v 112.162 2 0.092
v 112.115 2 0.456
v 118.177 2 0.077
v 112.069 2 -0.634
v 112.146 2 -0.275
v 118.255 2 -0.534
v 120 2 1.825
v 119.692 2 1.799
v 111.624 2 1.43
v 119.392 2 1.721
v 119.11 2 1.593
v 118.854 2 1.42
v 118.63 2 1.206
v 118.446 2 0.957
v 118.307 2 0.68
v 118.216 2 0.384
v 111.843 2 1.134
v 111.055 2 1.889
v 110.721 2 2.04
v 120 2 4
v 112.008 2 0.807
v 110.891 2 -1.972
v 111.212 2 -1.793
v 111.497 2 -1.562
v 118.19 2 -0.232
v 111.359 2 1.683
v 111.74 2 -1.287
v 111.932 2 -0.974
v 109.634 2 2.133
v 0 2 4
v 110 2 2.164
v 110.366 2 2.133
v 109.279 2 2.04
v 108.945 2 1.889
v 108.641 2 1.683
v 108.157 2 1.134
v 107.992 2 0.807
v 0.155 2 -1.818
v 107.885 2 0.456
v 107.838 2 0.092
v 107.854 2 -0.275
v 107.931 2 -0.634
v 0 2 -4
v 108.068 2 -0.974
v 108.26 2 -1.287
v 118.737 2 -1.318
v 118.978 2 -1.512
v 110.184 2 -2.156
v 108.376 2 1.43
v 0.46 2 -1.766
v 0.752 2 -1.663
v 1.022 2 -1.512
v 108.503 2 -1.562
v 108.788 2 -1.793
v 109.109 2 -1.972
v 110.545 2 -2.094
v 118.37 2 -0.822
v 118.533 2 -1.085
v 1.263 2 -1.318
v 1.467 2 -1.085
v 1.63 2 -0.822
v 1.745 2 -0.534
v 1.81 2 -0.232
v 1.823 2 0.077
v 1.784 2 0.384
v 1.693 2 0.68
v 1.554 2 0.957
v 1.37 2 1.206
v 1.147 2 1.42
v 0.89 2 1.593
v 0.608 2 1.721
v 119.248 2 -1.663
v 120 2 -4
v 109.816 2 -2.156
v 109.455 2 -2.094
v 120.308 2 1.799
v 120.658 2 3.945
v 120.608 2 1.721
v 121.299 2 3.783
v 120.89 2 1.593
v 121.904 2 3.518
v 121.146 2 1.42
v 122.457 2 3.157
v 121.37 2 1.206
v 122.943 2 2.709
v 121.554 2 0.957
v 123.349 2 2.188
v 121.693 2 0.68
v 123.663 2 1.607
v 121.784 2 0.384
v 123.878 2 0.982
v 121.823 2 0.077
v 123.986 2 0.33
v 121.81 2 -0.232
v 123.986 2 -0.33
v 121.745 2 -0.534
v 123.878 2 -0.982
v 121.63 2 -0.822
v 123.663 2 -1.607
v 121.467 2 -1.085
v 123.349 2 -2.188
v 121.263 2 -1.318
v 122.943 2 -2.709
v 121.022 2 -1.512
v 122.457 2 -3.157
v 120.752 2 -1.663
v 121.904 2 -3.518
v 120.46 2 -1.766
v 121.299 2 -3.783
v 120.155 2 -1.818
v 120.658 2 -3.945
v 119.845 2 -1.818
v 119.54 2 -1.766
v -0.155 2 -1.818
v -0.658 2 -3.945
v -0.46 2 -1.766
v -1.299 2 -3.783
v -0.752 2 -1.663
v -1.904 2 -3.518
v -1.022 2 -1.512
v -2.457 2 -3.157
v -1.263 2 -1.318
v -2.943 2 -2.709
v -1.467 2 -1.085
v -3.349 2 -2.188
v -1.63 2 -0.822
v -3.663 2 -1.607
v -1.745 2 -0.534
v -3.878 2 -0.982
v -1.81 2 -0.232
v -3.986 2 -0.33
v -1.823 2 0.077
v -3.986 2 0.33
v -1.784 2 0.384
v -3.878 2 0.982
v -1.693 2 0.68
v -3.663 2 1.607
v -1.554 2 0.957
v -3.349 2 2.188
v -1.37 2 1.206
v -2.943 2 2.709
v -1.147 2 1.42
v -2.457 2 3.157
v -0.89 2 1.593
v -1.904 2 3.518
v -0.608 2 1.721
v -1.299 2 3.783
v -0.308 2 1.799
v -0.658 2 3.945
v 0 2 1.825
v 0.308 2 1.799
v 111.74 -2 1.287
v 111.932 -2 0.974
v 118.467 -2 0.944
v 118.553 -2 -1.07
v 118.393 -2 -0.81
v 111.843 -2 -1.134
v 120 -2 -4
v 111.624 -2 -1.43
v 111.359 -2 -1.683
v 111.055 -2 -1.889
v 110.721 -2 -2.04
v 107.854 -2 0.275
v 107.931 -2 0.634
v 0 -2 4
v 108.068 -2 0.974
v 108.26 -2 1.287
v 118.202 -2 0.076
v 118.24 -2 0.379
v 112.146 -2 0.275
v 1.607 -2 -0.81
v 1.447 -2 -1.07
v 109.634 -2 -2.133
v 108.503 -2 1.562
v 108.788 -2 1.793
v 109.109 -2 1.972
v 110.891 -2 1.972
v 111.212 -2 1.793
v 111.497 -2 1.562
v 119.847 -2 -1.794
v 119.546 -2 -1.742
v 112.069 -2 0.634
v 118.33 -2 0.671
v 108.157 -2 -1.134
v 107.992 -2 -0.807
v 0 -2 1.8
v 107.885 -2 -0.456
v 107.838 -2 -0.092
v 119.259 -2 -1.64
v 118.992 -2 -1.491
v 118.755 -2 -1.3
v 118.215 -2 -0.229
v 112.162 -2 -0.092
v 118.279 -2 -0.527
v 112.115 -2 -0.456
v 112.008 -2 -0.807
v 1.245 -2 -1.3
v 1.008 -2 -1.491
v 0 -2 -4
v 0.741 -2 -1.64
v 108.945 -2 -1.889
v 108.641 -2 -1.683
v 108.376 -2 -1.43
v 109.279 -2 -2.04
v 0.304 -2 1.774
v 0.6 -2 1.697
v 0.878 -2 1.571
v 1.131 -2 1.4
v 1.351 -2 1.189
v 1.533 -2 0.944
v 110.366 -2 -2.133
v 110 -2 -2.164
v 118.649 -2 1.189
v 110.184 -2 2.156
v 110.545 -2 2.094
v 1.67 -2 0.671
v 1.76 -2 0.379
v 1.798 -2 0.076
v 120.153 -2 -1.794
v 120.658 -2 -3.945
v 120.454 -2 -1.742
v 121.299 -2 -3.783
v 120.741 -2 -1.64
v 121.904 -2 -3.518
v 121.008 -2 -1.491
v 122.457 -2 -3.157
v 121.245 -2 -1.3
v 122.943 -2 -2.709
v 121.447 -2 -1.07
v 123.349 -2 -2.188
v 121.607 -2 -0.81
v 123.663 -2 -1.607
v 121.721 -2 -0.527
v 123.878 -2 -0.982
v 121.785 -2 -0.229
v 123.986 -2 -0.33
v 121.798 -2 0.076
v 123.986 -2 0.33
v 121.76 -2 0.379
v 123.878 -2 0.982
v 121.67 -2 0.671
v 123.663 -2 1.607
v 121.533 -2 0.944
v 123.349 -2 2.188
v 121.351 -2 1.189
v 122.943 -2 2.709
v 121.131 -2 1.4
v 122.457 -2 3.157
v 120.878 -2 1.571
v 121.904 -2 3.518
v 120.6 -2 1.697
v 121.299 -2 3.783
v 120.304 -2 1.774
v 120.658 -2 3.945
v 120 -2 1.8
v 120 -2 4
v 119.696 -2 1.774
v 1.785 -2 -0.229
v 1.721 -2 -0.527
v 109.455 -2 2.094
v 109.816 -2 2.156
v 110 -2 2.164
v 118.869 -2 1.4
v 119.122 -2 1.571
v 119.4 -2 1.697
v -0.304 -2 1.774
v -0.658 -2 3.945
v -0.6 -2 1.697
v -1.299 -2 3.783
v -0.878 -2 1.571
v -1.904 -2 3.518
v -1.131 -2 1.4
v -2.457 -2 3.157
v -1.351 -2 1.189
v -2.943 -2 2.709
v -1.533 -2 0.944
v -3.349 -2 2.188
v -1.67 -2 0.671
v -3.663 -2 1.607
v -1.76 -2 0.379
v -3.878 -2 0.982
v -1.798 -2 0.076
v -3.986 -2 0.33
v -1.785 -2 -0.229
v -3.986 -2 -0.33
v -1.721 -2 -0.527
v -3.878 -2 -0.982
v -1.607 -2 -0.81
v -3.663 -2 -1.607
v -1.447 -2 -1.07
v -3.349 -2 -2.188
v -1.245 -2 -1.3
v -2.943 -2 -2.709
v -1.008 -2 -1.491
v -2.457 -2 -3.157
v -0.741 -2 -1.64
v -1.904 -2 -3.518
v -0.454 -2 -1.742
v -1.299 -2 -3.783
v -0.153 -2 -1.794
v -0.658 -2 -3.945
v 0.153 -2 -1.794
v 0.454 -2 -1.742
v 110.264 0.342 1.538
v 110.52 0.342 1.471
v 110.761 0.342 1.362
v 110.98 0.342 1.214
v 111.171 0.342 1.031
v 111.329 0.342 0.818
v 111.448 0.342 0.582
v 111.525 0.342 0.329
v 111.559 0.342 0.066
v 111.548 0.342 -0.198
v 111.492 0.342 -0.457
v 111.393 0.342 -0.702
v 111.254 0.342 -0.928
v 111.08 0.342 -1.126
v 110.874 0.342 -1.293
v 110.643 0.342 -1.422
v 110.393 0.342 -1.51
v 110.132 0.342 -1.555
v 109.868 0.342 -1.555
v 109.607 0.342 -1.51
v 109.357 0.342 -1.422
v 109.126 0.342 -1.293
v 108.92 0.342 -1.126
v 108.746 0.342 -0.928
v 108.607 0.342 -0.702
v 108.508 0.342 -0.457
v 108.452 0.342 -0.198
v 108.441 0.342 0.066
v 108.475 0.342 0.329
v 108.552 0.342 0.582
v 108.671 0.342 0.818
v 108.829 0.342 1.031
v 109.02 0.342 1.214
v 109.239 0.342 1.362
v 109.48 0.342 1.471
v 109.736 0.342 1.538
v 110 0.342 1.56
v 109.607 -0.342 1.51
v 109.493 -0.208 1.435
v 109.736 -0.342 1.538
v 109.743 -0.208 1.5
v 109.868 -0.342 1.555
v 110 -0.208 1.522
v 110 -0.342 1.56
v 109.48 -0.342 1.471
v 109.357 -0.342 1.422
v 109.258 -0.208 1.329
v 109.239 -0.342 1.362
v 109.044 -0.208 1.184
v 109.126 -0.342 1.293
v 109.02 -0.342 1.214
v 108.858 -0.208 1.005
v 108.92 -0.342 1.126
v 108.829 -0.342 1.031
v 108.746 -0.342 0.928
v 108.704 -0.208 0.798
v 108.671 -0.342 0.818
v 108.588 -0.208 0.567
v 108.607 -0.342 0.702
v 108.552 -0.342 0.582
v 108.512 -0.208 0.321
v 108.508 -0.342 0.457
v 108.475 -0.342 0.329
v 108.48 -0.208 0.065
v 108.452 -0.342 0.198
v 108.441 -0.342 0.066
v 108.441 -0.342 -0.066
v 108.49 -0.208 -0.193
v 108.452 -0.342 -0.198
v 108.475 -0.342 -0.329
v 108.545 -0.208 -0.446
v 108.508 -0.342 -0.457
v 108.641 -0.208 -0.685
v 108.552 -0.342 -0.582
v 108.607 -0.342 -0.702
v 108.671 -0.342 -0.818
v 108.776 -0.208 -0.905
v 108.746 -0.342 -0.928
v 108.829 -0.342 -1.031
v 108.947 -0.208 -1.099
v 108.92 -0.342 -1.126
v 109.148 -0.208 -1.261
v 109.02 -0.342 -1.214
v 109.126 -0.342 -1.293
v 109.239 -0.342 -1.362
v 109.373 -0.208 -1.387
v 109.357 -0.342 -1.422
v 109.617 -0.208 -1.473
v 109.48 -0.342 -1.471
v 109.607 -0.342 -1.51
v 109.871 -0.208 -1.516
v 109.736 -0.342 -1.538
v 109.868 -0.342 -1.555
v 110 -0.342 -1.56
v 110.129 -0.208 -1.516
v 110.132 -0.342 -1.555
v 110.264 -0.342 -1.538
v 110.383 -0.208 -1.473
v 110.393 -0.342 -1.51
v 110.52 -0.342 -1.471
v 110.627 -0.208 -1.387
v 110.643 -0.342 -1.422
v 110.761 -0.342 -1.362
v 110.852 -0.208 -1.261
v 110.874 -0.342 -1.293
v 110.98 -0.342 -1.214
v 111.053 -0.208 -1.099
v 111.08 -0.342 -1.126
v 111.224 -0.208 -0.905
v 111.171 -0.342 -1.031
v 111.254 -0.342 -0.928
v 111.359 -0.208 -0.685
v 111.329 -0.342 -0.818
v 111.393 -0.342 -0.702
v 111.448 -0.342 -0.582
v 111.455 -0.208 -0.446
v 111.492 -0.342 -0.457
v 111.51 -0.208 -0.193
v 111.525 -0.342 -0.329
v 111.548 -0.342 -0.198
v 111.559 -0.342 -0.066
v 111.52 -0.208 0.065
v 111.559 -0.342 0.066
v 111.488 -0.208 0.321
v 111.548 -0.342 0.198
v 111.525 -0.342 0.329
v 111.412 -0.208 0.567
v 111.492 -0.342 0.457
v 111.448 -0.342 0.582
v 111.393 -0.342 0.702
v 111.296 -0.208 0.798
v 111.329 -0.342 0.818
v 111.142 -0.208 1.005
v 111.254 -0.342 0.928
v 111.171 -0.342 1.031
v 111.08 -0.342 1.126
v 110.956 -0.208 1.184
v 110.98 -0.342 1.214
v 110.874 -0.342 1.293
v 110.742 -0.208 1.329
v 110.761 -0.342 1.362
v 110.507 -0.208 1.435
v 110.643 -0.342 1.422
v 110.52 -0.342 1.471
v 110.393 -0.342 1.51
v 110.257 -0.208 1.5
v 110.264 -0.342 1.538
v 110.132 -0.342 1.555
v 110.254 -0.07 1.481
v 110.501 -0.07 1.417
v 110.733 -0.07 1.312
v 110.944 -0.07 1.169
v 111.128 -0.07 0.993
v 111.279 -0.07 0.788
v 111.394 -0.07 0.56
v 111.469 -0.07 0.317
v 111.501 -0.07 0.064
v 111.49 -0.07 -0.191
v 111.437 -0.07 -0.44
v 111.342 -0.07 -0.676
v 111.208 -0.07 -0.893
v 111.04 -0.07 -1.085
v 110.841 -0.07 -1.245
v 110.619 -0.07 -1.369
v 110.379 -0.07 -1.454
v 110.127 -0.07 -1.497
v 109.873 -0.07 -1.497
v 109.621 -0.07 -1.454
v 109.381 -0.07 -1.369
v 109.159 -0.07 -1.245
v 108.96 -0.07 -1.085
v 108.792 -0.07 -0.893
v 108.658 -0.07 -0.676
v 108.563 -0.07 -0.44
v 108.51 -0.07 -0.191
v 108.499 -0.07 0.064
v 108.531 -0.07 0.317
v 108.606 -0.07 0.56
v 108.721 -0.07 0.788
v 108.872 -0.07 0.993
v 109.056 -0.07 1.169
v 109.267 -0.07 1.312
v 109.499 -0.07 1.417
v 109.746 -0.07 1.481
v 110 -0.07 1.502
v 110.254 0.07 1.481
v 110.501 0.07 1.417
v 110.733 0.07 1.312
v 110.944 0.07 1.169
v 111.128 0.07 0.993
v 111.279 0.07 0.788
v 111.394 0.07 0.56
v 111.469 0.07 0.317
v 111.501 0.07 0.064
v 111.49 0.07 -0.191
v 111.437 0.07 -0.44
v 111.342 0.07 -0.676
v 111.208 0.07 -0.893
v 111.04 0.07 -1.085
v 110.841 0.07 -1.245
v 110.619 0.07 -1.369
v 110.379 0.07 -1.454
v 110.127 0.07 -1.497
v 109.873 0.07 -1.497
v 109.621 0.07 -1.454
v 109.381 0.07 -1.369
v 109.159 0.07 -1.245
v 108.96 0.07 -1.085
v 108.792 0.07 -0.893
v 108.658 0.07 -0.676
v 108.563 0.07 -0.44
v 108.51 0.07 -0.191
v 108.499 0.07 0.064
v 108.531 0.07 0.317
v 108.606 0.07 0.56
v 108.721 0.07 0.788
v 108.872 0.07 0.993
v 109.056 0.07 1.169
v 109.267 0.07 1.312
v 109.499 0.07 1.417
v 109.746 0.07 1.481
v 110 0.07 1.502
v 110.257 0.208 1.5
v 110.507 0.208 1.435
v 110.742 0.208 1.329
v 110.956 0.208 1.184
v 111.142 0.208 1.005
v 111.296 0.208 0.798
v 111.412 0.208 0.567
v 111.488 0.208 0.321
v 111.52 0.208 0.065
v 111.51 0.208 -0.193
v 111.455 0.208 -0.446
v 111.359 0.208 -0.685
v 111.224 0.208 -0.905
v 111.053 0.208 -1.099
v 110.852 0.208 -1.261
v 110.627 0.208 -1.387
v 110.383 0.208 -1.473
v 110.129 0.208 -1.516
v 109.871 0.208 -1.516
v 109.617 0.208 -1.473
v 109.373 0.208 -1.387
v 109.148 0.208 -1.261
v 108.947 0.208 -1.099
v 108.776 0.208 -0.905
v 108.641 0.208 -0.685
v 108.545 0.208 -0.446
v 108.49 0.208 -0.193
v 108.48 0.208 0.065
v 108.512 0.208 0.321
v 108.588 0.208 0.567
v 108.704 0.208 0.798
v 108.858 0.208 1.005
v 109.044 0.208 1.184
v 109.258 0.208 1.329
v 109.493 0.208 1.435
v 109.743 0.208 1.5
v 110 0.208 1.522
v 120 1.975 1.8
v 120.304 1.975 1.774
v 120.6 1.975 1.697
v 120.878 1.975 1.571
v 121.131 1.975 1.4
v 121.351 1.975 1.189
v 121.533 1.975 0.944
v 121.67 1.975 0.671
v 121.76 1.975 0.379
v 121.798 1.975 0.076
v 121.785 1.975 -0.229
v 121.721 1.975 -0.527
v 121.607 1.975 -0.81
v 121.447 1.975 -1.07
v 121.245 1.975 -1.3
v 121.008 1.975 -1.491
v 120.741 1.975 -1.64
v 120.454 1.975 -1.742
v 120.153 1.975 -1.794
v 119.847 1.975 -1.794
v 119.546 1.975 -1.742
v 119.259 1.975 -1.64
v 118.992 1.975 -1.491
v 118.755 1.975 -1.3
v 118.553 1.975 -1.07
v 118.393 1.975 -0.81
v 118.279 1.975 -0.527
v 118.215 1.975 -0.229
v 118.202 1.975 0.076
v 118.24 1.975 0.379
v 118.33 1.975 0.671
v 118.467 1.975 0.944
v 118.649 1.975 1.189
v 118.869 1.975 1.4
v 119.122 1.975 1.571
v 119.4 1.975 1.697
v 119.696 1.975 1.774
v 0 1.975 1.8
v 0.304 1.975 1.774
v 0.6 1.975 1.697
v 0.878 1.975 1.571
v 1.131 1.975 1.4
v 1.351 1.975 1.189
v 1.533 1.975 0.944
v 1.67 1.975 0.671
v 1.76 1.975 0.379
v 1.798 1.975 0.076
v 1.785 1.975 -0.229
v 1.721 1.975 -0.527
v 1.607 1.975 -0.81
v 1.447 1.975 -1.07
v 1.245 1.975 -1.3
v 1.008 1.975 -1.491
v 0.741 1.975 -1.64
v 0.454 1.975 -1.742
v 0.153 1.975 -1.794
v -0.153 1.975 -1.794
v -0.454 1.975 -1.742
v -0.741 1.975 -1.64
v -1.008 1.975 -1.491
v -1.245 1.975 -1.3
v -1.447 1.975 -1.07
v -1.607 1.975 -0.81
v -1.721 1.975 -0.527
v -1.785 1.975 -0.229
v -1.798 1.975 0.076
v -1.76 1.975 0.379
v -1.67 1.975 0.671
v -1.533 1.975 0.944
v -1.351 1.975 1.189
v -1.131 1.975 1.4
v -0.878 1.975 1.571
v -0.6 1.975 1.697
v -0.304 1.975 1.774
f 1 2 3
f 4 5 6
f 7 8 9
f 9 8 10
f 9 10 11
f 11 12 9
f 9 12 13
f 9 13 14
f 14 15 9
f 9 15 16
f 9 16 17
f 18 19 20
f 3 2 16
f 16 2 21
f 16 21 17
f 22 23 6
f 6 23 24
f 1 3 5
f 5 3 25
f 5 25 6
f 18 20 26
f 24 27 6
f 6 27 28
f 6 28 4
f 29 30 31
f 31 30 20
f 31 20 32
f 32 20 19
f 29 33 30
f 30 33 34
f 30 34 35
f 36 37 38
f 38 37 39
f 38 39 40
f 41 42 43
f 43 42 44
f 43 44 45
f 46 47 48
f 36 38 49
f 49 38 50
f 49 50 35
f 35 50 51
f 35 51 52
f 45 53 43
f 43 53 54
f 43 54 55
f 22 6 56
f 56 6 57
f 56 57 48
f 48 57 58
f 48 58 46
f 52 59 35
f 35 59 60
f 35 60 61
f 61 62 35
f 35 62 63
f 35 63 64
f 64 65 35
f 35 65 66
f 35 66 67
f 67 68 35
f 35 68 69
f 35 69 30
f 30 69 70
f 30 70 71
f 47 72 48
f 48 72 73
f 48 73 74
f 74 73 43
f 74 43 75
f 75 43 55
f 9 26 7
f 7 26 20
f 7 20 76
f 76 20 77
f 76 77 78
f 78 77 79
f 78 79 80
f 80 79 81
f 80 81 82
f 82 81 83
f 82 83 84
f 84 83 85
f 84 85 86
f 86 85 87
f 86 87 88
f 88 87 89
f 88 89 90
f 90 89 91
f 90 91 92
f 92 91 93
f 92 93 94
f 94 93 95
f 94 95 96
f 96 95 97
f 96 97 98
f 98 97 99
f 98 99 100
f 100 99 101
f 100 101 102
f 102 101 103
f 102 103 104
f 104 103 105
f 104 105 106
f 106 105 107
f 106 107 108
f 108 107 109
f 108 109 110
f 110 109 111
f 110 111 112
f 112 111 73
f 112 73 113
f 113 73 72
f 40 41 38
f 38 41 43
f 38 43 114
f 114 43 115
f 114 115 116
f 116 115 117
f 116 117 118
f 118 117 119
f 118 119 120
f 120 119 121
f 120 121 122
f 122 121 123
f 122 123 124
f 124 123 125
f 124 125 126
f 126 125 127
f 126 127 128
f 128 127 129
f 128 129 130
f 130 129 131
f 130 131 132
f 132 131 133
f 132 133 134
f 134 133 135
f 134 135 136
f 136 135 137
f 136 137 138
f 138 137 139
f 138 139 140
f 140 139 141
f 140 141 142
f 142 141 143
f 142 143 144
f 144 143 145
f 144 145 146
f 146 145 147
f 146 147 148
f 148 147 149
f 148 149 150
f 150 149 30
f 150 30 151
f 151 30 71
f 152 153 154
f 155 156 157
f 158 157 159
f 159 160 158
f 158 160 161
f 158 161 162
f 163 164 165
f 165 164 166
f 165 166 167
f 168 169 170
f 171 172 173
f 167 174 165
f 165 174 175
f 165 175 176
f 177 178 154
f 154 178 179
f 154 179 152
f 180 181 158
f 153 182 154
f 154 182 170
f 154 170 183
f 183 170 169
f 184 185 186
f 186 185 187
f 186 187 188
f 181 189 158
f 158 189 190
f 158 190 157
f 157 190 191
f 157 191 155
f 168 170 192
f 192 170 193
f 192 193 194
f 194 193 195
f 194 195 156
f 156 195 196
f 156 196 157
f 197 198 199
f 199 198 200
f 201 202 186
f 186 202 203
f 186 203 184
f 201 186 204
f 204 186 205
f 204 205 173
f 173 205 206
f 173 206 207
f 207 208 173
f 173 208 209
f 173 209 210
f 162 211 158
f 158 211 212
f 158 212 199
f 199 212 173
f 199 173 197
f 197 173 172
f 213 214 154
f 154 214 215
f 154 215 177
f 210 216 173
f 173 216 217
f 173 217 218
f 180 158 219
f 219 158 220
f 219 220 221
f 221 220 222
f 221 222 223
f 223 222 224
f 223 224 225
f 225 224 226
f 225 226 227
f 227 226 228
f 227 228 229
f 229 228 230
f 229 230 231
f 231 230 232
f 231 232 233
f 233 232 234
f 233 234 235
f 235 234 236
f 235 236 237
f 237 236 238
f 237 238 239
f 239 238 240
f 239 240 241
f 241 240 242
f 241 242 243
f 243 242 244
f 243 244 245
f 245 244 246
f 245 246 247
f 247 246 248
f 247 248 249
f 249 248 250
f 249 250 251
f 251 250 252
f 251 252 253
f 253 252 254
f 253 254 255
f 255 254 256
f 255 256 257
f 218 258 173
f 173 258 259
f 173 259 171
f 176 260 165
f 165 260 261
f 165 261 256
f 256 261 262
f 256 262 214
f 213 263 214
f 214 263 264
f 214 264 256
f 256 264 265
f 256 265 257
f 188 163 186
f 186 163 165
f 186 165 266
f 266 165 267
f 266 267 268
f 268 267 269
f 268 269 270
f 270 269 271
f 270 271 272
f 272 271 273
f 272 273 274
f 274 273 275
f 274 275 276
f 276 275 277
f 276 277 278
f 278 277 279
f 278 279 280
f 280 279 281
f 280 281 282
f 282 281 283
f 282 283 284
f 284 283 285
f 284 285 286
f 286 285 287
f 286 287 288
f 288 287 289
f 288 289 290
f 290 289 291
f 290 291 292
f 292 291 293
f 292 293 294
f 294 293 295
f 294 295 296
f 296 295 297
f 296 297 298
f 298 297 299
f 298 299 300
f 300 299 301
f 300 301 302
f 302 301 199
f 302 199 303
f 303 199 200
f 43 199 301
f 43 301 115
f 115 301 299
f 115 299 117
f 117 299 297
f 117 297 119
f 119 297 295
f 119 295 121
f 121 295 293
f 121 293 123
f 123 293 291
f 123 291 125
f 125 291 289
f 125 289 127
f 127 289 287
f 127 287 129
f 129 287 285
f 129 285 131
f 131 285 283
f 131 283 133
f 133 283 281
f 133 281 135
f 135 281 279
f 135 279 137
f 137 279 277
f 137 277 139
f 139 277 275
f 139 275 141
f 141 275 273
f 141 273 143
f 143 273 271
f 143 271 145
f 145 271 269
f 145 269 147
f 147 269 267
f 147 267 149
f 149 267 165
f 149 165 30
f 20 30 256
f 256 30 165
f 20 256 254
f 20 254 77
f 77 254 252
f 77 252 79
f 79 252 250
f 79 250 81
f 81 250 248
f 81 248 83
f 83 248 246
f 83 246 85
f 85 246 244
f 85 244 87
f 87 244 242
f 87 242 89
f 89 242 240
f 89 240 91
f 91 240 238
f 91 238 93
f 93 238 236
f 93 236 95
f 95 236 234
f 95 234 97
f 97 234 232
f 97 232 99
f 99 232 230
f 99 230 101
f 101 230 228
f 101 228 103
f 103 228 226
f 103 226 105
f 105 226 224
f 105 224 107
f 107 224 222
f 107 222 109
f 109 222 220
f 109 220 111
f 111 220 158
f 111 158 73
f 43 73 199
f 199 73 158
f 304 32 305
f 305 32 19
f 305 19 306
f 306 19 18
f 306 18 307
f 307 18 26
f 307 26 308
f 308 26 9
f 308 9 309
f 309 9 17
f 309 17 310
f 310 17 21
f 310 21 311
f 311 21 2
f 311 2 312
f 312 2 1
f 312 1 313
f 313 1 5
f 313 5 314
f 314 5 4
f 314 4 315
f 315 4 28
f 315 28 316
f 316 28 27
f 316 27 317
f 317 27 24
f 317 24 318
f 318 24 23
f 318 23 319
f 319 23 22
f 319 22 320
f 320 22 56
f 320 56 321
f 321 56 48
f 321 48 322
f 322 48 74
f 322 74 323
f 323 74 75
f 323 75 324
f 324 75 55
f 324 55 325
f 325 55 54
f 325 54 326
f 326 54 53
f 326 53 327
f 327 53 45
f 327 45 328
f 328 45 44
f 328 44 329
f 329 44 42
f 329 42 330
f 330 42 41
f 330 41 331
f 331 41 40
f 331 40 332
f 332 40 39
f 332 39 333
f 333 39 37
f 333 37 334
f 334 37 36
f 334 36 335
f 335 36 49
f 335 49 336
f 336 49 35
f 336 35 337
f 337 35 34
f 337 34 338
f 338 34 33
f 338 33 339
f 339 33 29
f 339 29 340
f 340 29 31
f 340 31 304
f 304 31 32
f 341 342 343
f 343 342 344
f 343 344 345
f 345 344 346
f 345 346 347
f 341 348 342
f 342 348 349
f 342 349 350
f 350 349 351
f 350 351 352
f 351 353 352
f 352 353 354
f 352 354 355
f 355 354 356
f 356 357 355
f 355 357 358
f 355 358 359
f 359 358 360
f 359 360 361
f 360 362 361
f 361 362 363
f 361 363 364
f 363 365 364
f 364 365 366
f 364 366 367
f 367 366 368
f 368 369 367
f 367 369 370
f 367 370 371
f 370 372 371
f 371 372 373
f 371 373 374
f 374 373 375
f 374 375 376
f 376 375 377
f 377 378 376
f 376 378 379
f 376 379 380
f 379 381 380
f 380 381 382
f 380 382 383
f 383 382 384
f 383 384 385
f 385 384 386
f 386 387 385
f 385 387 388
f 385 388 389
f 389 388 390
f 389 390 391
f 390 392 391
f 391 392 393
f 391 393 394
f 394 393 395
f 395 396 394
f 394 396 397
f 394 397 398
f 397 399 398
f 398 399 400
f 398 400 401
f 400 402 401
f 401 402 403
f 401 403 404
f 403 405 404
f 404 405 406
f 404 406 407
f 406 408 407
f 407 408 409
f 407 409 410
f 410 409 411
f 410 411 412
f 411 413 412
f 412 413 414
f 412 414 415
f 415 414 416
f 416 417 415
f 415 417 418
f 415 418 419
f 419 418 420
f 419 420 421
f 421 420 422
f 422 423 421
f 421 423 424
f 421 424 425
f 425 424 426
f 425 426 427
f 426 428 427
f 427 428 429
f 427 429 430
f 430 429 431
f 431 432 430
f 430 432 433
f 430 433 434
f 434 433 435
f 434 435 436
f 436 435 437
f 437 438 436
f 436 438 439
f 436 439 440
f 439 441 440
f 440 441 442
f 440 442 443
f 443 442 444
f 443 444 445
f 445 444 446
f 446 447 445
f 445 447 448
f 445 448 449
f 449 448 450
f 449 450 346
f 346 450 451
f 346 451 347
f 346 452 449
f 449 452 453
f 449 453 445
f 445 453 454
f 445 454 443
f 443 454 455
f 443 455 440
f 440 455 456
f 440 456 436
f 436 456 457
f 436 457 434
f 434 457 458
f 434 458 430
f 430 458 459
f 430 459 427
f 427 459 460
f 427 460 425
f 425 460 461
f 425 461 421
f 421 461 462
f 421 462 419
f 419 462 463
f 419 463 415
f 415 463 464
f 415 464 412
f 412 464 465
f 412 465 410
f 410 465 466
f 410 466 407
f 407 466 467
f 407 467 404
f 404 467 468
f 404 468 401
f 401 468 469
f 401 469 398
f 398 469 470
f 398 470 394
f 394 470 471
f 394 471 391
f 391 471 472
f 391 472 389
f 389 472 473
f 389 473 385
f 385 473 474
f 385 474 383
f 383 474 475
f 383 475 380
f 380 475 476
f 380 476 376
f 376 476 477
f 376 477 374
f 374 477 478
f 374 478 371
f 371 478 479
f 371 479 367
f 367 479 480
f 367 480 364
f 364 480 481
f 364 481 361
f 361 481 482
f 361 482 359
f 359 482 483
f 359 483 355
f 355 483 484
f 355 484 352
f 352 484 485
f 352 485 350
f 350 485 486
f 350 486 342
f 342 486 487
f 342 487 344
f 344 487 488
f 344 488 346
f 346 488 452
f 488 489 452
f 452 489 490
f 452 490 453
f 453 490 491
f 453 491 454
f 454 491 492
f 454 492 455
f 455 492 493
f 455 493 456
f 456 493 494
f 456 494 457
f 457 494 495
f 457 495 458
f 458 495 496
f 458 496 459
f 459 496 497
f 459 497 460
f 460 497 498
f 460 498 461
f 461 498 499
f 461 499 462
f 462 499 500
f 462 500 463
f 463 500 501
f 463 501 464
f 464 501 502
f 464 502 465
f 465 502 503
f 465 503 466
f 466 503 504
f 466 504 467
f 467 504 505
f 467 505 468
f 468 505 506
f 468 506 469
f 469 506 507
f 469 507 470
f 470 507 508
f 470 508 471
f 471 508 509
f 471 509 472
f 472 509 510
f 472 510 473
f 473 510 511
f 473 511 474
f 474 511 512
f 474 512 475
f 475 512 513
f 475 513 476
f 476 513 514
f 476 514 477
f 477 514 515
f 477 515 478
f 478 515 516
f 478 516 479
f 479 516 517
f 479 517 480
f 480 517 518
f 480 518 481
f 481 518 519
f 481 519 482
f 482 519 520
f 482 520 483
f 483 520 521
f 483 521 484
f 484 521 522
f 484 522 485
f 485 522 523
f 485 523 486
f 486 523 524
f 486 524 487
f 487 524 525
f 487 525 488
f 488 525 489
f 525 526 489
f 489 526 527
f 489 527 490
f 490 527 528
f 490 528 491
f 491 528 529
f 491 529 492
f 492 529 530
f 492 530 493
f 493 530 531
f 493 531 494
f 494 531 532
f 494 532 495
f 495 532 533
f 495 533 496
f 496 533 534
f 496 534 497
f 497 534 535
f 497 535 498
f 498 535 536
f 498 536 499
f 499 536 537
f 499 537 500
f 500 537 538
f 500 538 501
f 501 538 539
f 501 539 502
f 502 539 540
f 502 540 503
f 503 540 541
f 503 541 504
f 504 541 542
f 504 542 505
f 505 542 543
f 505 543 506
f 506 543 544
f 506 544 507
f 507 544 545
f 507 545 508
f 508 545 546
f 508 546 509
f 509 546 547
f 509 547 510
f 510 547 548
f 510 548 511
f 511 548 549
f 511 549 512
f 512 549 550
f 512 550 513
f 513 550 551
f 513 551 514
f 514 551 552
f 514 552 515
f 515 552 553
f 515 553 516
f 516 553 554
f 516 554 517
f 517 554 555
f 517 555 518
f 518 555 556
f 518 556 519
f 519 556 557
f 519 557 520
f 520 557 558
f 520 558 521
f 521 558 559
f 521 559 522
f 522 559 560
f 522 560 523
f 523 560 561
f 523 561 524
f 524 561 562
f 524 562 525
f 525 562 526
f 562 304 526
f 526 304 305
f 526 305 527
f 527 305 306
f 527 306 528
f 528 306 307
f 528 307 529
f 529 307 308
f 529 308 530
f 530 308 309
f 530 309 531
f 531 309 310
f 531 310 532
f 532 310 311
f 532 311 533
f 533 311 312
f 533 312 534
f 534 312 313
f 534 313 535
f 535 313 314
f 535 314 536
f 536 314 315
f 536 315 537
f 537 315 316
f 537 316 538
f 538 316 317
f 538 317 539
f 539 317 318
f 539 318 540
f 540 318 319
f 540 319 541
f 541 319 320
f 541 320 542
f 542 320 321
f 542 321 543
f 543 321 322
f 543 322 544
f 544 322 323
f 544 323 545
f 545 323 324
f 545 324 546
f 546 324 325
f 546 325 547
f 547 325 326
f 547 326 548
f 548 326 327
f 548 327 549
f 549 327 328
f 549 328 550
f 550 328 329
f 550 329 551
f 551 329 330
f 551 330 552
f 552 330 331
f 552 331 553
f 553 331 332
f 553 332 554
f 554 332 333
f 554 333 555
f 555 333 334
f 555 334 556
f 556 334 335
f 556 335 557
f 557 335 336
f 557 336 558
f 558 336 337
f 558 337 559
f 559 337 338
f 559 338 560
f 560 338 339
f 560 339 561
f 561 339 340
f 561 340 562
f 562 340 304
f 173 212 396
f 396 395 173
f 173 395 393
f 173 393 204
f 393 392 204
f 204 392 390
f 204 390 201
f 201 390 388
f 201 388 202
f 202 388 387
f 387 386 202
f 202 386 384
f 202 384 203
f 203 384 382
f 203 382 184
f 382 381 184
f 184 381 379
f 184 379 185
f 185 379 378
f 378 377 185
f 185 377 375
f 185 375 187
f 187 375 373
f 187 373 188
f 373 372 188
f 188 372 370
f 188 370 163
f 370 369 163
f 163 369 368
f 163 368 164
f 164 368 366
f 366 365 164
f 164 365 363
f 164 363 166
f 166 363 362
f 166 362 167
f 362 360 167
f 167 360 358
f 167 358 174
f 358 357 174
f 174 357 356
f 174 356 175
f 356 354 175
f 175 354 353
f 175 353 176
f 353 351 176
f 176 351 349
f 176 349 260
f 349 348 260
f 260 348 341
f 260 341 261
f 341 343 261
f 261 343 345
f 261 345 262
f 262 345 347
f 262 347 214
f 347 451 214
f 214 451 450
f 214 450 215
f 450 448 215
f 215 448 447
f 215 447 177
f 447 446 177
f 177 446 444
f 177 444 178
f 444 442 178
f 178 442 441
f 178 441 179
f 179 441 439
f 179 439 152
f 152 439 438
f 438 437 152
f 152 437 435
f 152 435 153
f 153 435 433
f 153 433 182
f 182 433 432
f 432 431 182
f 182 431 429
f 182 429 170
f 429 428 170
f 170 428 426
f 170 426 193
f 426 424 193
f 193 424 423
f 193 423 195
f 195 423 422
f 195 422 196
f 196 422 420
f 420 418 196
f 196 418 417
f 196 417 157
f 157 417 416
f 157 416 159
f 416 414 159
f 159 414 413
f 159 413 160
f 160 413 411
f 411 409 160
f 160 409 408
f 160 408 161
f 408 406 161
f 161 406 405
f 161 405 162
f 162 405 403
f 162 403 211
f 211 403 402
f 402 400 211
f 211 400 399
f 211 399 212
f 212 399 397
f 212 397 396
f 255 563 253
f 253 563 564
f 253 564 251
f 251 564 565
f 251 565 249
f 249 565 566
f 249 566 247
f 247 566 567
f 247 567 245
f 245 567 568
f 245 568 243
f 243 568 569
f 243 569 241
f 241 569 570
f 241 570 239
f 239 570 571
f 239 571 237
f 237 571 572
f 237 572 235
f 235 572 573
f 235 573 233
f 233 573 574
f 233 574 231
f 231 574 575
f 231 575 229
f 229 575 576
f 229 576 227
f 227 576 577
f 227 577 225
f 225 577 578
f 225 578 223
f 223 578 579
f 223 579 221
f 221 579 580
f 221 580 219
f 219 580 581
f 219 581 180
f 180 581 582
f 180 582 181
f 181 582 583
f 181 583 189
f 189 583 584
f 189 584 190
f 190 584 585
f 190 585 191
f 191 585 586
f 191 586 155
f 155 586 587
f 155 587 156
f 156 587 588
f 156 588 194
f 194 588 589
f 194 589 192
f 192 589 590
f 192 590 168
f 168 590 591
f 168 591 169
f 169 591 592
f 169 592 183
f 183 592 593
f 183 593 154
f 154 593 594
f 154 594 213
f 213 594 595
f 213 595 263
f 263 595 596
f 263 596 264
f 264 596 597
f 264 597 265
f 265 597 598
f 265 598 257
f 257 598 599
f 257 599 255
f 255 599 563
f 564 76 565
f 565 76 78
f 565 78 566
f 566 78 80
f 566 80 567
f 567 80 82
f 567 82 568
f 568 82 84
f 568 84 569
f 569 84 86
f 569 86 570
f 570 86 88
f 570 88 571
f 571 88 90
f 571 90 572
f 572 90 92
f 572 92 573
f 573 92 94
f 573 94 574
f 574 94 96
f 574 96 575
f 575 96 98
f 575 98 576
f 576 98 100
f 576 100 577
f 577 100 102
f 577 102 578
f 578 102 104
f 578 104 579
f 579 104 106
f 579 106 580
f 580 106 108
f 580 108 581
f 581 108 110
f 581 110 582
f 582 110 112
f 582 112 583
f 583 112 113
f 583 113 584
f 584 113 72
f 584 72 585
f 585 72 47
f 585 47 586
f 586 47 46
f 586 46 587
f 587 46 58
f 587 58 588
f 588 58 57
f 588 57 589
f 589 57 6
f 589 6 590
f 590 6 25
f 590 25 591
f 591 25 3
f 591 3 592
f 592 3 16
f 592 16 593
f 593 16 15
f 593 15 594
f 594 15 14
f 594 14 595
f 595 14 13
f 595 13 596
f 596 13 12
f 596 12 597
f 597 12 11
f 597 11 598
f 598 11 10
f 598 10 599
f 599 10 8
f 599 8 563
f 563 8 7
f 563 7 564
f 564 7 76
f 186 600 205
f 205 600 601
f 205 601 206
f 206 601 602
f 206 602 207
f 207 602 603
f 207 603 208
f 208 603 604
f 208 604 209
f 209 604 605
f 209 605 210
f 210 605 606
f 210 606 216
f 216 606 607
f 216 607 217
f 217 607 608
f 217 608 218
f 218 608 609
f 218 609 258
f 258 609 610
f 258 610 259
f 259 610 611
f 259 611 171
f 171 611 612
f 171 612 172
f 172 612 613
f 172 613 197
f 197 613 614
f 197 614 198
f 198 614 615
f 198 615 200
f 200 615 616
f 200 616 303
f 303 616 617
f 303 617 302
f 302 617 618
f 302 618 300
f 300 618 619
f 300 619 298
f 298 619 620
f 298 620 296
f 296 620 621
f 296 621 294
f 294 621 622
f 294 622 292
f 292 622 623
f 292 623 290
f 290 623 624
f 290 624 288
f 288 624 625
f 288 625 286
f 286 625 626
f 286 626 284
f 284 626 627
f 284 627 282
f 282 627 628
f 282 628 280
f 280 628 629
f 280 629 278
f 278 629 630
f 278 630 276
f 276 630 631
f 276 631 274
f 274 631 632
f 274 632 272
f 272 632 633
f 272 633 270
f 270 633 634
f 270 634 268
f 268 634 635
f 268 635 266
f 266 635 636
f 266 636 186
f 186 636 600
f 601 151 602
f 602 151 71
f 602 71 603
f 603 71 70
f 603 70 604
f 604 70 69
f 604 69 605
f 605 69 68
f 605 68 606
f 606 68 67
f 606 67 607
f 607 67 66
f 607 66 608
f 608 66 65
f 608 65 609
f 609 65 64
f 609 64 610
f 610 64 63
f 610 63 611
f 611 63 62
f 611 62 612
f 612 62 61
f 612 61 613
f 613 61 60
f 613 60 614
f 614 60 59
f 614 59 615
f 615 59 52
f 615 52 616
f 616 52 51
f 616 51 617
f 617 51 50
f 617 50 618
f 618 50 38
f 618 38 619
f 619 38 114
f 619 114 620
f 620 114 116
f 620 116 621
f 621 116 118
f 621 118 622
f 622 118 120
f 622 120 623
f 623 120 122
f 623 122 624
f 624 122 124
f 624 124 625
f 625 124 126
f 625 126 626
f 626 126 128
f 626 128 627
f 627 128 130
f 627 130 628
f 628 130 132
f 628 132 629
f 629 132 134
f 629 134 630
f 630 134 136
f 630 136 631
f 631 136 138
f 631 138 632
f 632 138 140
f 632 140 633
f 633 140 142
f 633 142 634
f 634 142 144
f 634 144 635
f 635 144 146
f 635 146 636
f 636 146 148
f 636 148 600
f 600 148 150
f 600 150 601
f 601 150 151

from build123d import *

# Parameters (mm, degrees)
SKETCH1_R                      = 1
BOSS_EXTRUDE1_DEPTH            = 2
M3_CLEARANCE_HOLE1_D           = 3.6
M3_CLEARANCE_HOLE1_CSINK_D     = 3.65
M3_CLEARANCE_HOLE1_CSINK_ANGLE = 90


with BuildPart() as part:
    # Sketch1 → Boss-Extrude1 (new, symmetric)
    with BuildSketch(Plane(origin=(0, 0, 0), x_dir=(1, 0, 0), z_dir=(0, 1, 0))):
        with BuildLine():
            Line((0, 4), (120, 4))
            ThreePointArc((120, 4), (124, 0), (120, -4))
            Line((120, -4), (0, -4))
            ThreePointArc((0, -4), (-4, 0), (0, 4))
        make_face()
        Circle(SKETCH1_R, mode=Mode.SUBTRACT)
        with Locations((120, 0)):
            Circle(SKETCH1_R, mode=Mode.SUBTRACT)
        with Locations((110, 0)):
            Circle(SKETCH1_R, mode=Mode.SUBTRACT)
    extrude(amount=BOSS_EXTRUDE1_DEPTH, both=True)

    # Sketch3 → Cut-Revolve1 (revolve, cut)
    with BuildSketch(Plane.XY):
        with BuildLine():
            Line((110, 2), (112.163762696, 2))
            Line((112.163762696, 2), (111.560307379, 0.342020143))
            ThreePointArc((111.560307379, 0.342020143), (111.5, 0), (111.560307379, -0.342020143))
            Line((111.560307379, -0.342020143), (112.163762696, -2))
            Line((112.163762696, -2), (110, -2))
            Line((110, -2), (110, 2))
        make_face()
    revolve(axis=Axis((110, 2, 0), (0, -1, 0)), mode=Mode.SUBTRACT)

    # M3 Clearance Hole1 (through all)
    with Locations(Plane(origin=(0, 2, 0), x_dir=(1, 0, 0), z_dir=(0, 1, 0))):
        with Locations((0, 0), (120, 0)):
            CounterSinkHole(M3_CLEARANCE_HOLE1_D / 2, M3_CLEARANCE_HOLE1_CSINK_D / 2, counter_sink_angle=M3_CLEARANCE_HOLE1_CSINK_ANGLE)


solid = part.part
